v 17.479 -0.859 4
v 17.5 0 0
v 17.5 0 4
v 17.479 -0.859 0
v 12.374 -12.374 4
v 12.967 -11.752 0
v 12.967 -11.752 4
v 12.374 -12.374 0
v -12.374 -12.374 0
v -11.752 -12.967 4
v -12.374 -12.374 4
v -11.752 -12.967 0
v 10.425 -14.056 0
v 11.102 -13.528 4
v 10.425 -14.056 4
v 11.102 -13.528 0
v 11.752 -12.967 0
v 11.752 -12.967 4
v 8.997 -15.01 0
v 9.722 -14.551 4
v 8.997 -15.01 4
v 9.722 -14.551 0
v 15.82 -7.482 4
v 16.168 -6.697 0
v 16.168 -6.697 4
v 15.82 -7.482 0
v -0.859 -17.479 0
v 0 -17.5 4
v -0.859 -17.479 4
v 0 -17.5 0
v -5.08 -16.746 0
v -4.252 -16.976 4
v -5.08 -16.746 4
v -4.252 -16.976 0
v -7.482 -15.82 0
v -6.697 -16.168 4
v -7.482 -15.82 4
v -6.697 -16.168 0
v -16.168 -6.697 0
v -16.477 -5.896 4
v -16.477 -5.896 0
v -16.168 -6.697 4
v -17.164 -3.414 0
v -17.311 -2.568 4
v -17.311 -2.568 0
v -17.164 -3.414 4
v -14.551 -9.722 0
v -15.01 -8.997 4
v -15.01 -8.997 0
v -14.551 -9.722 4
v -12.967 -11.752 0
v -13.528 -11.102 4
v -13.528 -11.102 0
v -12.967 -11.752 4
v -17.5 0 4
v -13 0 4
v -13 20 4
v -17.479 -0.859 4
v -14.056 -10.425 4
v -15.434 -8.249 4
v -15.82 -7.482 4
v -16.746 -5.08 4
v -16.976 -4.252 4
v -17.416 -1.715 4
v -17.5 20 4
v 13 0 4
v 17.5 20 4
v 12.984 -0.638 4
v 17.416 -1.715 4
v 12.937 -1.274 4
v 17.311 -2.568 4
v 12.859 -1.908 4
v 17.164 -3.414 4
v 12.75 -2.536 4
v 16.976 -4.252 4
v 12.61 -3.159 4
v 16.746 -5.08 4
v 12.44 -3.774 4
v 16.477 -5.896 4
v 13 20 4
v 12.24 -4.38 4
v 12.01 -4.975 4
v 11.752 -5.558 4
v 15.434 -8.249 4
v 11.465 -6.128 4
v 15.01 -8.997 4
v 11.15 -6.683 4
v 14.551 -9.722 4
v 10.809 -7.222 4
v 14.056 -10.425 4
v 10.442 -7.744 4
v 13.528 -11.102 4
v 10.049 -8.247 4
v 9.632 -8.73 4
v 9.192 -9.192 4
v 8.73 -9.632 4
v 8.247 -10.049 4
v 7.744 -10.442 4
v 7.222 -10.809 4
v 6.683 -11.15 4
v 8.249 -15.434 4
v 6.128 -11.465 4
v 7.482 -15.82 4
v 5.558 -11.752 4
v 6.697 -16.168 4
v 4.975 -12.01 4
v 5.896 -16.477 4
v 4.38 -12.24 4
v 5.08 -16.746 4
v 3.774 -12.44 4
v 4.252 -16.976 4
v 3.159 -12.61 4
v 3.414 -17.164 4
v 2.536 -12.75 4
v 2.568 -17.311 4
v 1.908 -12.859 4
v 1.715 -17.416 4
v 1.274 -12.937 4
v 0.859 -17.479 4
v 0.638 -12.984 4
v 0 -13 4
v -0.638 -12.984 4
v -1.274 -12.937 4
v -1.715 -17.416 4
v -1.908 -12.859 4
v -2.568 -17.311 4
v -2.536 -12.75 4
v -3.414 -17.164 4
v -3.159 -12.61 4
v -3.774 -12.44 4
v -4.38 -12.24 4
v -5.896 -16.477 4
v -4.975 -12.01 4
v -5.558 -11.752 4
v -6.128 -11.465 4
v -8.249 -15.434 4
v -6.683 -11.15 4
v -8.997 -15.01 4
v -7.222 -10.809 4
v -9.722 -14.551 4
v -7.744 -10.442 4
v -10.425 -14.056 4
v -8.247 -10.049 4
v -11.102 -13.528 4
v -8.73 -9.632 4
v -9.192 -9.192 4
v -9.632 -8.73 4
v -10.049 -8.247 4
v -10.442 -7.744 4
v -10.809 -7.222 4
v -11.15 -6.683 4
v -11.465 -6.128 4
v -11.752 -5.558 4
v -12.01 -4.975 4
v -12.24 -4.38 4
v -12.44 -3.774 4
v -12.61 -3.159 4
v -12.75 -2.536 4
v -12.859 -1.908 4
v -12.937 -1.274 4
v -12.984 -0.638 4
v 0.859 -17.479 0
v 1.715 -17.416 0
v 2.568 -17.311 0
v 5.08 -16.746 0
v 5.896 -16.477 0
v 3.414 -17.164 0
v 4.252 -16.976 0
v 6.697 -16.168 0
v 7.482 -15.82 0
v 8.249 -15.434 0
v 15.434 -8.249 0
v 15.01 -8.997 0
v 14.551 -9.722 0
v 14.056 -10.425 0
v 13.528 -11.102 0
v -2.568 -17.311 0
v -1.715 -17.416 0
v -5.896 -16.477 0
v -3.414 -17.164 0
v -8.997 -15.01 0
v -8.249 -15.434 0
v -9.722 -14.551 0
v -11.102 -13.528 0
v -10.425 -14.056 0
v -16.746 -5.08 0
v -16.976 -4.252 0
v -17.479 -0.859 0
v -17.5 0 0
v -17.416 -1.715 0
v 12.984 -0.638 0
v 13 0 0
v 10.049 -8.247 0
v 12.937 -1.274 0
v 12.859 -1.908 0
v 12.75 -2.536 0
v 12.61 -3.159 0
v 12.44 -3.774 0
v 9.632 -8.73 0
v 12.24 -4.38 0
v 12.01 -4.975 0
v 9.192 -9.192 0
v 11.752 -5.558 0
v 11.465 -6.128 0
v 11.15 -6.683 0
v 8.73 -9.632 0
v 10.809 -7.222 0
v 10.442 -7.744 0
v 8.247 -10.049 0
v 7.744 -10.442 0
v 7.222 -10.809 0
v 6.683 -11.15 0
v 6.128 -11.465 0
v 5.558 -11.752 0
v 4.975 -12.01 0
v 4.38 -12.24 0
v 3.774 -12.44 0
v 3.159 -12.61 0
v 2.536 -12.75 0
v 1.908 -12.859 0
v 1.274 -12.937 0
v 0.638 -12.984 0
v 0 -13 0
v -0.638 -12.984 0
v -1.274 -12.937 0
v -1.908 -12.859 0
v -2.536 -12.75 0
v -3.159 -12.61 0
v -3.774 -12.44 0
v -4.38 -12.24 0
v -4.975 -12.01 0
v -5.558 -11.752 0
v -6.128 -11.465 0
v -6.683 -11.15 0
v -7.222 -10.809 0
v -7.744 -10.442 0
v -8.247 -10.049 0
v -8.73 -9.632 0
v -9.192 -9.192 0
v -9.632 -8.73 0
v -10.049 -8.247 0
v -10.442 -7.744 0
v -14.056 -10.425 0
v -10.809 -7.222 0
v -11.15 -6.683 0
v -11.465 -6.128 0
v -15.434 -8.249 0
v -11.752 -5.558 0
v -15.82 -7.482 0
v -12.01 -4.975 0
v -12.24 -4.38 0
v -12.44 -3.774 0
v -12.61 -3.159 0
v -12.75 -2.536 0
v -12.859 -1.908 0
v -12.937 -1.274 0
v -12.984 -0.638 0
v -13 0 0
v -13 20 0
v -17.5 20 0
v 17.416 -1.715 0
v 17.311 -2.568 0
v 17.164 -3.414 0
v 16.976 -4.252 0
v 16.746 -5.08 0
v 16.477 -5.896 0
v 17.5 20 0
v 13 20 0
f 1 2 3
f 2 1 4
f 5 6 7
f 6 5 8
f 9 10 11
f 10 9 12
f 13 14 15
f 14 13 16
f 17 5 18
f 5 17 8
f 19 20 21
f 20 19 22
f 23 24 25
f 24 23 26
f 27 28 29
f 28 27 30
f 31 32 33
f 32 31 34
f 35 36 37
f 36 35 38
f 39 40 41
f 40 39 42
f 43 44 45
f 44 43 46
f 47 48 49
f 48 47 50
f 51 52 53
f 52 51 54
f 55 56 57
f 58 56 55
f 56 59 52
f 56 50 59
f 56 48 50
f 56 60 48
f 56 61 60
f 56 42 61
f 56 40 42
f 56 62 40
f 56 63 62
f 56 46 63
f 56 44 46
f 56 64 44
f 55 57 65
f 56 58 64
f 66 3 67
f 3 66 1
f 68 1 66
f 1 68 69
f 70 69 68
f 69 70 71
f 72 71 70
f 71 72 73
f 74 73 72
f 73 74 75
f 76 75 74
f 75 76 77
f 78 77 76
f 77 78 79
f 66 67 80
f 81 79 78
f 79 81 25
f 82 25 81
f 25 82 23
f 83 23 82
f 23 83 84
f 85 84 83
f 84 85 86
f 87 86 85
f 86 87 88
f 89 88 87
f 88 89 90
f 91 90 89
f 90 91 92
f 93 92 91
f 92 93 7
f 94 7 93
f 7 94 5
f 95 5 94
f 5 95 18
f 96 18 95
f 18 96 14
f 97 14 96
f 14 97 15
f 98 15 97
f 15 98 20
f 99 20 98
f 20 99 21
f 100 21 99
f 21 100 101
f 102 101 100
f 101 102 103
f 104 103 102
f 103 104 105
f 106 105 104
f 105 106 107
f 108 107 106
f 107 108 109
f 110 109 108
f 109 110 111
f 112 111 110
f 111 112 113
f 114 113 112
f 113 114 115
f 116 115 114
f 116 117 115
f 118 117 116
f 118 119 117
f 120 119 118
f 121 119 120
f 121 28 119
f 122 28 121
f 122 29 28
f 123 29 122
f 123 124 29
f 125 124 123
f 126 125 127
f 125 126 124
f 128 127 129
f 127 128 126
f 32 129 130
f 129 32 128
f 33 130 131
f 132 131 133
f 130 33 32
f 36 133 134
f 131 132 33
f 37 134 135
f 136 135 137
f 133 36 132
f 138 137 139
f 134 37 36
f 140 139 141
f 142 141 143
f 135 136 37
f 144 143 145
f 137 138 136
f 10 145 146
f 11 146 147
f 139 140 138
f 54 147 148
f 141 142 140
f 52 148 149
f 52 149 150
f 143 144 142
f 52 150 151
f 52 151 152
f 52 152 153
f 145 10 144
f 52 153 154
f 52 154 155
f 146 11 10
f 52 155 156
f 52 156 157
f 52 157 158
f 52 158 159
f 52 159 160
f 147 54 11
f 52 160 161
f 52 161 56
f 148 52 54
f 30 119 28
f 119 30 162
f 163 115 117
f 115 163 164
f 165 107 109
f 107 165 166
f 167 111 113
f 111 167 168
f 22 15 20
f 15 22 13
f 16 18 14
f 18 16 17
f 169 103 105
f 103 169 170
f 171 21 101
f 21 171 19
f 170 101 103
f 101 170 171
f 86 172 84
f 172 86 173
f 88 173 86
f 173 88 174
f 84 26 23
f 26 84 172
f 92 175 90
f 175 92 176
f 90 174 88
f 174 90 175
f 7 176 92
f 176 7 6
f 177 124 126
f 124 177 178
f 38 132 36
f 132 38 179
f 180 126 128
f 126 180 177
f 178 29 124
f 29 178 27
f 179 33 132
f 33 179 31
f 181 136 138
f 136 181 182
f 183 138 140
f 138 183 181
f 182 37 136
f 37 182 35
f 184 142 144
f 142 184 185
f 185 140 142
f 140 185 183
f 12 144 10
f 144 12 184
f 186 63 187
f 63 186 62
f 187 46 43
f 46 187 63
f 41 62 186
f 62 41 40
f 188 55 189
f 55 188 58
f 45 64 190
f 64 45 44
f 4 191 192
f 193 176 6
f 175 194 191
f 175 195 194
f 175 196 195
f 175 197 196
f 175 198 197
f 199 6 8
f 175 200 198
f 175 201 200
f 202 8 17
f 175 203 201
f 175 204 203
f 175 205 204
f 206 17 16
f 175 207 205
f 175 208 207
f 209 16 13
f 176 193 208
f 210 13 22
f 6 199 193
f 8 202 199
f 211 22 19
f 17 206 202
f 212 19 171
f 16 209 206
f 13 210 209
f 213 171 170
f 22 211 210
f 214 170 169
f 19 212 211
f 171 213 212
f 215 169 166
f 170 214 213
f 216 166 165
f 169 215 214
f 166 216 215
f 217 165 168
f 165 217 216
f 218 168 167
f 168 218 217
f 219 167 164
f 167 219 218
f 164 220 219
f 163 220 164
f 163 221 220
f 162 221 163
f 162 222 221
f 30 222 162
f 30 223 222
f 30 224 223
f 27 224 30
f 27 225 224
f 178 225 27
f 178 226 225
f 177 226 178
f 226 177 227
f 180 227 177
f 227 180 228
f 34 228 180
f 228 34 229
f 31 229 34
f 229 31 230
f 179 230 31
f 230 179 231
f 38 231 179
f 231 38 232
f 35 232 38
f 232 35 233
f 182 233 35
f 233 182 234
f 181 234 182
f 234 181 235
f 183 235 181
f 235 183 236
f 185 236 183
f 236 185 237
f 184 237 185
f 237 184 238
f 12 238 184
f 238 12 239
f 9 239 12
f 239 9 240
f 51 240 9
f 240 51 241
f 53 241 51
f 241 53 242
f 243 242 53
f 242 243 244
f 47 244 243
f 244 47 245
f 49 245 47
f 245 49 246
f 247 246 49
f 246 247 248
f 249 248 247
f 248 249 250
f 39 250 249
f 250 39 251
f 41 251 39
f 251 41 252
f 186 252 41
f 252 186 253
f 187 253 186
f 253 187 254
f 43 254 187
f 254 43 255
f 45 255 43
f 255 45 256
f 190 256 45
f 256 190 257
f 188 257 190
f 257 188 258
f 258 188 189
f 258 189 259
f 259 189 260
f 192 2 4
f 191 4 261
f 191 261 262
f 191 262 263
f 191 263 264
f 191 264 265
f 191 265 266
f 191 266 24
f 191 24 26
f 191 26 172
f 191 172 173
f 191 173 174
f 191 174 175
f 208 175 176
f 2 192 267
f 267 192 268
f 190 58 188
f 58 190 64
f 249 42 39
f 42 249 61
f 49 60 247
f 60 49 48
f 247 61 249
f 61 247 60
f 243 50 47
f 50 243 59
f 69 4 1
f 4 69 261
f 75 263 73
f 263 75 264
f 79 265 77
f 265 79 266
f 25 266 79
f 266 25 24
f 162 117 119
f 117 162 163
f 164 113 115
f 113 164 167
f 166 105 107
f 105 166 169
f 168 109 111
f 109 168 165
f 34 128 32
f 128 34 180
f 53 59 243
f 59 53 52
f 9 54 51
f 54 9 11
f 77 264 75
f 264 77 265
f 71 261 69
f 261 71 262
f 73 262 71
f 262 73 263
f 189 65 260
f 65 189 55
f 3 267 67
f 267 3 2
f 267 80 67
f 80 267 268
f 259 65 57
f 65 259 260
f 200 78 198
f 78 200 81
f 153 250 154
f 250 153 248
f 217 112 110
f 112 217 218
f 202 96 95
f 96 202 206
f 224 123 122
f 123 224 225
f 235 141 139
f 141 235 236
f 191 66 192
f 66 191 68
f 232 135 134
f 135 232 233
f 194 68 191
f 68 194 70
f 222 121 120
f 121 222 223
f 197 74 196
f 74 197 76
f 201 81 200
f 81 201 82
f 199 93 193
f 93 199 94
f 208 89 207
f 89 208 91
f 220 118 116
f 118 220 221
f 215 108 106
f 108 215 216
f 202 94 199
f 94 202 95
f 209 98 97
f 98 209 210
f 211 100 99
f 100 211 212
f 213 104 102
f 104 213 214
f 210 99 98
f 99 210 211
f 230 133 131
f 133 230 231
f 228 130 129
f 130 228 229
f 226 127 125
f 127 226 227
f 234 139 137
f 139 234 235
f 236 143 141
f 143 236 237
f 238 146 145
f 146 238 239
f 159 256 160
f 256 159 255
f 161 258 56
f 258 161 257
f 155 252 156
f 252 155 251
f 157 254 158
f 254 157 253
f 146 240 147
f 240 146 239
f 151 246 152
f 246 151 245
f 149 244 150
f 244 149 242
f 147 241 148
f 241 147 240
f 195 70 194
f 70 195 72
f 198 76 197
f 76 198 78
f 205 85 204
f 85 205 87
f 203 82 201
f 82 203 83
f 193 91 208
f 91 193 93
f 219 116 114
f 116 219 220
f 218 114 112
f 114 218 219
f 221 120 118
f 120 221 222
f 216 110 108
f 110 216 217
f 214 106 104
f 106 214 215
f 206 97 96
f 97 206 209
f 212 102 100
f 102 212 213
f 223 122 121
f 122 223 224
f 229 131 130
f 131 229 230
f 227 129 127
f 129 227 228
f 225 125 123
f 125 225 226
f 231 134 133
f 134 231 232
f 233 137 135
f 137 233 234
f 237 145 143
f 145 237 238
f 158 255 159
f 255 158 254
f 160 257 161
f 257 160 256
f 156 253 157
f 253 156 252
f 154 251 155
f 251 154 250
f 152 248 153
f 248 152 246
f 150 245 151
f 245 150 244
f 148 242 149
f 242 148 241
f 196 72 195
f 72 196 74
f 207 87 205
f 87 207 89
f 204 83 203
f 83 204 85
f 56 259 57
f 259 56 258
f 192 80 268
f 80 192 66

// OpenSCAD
/* mail@AndreBetz.de Zwieselbrau.de*/

AdapterAussen = 35;
AdapterH      =  4;
AdapterL      = 20;
VichyDInnen   = 26;

$fn = 128;

difference() 
{
    union()
    {
        cylinder(AdapterH,AdapterAussen/2,AdapterAussen/2); 
        translate ([-AdapterAussen/2,0, 0])      
            cube ([AdapterAussen,AdapterL, AdapterH],false);
    }
    translate ([0,0,-0.1])
        cylinder(AdapterH+0.2,VichyDInnen/2,VichyDInnen/2); 
    translate ([-VichyDInnen/2,0,-0.1])      
        cube ([VichyDInnen,AdapterL+0.1, AdapterH+0.2],false);

}
